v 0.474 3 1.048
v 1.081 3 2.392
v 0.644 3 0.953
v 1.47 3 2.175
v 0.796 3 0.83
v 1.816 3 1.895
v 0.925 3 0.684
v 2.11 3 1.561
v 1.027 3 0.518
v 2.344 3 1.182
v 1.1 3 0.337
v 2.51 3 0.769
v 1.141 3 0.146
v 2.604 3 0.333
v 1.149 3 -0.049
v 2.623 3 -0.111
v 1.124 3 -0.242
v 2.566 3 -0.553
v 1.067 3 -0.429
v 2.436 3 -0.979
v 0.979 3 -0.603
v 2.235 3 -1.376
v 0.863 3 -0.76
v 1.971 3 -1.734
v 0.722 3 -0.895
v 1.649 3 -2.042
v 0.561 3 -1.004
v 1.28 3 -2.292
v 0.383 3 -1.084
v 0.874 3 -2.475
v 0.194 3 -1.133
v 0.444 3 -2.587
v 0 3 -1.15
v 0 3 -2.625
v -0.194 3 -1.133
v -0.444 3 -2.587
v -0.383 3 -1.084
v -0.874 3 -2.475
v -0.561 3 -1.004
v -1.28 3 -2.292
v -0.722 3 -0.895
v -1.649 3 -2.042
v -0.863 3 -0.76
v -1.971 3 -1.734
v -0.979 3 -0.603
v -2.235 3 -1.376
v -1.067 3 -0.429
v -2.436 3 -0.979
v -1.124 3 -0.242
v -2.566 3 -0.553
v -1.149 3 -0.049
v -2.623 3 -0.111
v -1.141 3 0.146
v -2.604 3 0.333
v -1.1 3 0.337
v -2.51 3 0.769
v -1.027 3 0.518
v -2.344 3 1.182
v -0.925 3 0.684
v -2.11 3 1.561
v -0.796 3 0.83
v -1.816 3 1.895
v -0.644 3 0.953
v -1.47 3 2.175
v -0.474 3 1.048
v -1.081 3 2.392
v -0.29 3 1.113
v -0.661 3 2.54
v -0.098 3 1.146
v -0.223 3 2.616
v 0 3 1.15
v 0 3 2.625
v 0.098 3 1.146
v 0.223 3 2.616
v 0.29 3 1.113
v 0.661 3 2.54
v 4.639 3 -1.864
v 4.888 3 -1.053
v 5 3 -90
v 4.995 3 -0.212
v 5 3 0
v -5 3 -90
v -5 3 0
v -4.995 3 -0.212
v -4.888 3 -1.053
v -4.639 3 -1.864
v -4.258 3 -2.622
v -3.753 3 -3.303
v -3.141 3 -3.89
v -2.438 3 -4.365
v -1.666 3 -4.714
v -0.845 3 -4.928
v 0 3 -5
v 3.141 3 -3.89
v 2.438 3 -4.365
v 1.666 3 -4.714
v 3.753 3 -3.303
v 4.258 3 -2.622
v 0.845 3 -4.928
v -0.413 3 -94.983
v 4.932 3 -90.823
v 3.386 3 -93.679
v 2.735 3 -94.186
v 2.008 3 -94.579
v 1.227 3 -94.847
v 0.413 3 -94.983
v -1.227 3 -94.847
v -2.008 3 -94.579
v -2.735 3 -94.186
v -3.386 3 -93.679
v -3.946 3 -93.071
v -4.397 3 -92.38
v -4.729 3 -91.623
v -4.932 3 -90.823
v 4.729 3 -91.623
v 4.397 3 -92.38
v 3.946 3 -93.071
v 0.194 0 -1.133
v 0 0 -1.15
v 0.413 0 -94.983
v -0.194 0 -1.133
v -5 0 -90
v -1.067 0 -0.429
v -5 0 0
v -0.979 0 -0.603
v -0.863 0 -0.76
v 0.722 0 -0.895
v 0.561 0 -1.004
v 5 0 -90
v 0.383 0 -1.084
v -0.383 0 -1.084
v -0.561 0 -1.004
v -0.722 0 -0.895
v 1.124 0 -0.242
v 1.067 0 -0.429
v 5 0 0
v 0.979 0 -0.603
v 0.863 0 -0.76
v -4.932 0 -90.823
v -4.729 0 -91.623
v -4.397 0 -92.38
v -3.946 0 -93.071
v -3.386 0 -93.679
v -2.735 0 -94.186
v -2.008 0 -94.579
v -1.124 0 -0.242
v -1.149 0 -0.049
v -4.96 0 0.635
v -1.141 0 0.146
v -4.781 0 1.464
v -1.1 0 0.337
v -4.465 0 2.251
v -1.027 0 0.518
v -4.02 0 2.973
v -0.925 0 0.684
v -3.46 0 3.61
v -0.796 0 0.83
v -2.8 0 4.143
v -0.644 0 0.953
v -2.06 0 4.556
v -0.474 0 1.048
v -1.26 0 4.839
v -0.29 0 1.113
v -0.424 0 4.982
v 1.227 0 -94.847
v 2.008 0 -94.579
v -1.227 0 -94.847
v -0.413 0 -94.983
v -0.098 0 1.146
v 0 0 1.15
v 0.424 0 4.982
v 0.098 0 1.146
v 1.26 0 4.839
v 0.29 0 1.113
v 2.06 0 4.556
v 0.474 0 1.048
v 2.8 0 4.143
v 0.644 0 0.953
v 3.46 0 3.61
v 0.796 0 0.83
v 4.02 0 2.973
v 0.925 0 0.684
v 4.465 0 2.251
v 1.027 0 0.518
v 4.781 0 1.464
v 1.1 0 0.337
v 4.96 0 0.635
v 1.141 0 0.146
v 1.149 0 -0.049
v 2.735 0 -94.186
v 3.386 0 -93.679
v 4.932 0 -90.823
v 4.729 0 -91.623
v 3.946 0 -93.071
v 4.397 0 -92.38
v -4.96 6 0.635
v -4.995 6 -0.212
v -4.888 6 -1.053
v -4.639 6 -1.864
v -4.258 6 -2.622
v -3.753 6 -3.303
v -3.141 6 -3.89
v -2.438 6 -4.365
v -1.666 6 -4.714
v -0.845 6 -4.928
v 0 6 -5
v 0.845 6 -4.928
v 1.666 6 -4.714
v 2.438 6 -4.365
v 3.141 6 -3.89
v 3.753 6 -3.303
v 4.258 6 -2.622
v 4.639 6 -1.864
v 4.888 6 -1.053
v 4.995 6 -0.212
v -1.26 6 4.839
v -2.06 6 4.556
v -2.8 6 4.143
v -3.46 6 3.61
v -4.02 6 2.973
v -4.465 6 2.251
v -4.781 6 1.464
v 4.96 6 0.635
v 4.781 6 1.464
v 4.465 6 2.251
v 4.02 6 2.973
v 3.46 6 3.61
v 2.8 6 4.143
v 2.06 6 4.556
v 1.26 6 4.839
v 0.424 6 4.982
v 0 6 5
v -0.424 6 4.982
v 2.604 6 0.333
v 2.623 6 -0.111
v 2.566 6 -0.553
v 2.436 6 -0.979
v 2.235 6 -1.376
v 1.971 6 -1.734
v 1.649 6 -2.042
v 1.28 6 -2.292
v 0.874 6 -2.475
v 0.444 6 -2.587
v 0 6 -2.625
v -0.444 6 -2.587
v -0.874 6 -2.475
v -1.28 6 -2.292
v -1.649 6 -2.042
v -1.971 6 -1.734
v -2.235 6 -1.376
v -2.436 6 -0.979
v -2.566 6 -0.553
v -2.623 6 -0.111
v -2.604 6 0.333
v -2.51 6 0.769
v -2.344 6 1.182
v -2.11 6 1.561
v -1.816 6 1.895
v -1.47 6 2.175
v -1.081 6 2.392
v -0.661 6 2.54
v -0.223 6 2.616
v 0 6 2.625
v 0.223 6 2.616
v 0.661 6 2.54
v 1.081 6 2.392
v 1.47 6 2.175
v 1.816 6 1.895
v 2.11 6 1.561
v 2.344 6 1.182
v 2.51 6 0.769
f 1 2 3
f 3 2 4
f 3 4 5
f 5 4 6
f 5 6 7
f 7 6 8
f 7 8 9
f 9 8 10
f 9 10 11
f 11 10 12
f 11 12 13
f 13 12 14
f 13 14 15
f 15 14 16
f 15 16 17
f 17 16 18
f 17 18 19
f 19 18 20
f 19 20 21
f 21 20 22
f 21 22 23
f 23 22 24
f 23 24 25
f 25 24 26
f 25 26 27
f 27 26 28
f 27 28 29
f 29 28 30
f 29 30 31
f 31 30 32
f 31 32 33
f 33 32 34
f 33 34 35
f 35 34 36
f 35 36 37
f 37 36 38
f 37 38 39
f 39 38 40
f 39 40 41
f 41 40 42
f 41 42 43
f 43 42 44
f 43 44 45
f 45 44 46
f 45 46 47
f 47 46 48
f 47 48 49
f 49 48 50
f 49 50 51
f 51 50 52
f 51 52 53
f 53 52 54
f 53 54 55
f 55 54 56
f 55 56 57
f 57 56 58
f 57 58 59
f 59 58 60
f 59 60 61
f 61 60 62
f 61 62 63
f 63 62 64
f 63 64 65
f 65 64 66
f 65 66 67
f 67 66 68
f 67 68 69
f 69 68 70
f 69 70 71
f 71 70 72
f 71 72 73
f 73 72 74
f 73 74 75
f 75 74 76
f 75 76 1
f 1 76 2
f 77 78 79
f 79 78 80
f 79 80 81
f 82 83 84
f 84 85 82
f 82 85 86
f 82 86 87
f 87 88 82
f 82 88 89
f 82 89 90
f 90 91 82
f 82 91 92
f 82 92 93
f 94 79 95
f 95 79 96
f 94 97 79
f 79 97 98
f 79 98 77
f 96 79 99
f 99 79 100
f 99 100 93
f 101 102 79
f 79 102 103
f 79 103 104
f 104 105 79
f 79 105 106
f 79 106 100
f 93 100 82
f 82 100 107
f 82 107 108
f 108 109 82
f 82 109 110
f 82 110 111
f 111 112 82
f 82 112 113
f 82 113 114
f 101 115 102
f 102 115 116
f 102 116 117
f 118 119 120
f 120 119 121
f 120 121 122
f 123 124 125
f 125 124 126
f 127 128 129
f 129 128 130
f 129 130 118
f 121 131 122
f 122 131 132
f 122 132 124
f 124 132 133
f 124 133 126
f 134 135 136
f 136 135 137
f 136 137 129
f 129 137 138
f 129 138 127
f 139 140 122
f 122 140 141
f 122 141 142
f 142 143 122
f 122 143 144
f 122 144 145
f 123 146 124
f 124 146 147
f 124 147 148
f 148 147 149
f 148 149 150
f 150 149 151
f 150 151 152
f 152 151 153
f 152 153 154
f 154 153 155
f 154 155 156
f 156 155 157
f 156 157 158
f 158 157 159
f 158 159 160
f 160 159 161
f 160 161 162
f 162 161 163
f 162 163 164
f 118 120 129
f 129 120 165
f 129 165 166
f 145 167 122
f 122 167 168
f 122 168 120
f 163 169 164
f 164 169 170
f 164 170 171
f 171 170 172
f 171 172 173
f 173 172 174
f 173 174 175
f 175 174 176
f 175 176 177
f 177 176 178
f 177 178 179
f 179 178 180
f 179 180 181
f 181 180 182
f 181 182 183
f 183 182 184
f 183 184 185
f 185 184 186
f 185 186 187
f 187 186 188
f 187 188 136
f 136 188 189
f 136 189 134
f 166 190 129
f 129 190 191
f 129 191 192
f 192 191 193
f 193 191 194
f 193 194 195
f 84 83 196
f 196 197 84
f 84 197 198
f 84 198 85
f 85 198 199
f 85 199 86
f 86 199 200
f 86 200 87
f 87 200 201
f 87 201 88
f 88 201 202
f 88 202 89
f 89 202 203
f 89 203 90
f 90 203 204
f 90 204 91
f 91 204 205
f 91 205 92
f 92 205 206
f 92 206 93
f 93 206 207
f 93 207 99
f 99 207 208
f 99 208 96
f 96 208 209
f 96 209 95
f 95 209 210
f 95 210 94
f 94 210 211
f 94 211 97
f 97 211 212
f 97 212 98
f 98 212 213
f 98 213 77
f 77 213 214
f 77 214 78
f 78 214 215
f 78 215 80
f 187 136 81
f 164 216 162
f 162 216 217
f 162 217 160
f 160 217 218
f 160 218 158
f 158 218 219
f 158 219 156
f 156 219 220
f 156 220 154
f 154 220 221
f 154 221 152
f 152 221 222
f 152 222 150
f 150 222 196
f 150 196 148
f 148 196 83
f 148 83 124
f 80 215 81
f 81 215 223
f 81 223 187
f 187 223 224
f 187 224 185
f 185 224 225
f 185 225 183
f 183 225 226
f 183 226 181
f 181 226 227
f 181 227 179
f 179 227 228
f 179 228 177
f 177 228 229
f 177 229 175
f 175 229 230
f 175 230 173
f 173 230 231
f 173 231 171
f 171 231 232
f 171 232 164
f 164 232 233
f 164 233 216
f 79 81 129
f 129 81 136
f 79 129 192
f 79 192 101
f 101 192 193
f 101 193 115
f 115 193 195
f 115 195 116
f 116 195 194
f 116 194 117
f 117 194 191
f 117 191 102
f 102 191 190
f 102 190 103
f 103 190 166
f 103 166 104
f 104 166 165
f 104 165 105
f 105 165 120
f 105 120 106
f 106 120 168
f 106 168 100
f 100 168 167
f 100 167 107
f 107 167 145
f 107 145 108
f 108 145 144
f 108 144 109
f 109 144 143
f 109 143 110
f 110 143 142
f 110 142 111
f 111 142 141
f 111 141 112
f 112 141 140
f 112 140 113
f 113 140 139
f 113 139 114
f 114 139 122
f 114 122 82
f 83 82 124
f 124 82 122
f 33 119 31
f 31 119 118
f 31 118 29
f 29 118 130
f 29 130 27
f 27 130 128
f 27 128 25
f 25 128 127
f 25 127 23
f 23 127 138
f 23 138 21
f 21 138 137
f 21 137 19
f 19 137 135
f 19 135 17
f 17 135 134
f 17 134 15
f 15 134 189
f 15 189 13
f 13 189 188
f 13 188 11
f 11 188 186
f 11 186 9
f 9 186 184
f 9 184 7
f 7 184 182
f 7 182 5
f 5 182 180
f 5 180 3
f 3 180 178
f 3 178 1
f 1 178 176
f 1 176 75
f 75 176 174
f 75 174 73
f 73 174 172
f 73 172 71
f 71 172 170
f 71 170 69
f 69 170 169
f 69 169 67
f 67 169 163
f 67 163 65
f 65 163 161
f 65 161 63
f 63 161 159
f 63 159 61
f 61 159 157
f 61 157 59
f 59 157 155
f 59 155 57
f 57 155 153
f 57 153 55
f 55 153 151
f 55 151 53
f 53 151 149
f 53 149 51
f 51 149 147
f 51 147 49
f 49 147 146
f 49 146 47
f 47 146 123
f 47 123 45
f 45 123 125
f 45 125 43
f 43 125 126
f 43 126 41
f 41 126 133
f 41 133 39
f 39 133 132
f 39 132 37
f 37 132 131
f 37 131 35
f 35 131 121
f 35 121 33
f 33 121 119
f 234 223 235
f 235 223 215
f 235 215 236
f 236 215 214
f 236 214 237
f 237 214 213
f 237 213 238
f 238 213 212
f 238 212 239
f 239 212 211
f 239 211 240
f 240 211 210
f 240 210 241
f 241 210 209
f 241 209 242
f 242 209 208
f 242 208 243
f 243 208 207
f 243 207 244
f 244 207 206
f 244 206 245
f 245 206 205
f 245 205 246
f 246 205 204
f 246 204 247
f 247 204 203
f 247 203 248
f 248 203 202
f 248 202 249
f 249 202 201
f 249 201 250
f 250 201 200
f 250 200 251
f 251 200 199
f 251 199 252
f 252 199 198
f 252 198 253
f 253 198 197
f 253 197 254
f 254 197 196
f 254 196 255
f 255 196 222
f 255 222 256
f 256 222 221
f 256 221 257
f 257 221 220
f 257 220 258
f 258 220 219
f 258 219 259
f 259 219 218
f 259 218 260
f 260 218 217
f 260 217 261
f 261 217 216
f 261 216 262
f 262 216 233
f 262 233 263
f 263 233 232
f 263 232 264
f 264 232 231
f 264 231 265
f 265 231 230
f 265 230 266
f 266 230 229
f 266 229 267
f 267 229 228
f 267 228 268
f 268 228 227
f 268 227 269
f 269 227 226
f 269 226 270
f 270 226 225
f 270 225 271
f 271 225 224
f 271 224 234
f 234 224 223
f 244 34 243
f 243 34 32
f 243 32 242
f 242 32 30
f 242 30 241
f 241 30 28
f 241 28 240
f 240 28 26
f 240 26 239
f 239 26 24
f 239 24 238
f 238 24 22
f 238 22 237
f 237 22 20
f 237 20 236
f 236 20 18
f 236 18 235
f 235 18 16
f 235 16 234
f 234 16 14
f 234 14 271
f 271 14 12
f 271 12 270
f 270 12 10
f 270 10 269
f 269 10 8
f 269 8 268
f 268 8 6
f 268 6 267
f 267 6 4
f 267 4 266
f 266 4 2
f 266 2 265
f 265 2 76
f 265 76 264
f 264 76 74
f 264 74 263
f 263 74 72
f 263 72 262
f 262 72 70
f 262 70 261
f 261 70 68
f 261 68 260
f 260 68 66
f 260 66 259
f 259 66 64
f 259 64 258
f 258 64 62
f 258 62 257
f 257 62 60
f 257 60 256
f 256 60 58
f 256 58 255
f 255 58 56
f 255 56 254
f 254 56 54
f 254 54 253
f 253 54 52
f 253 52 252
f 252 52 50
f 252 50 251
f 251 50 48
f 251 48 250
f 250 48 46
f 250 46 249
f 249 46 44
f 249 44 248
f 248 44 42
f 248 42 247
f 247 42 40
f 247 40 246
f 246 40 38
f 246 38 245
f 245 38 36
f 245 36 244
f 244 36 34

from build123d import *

# Parameters (mm, degrees)
CROQUIS1_R              = 1.15
SALIENTE_EXTRUIR1_DEPTH = 3
CROQUIS2_R              = 5
CROQUIS2_R_2            = 2.625
SALIENTE_EXTRUIR2_DEPTH = 3


with BuildPart() as part:
    # Croquis1 → Saliente-Extruir1 (new body)
    with BuildSketch(Plane(origin=(0, 0, 0), x_dir=(1, 0, 0), z_dir=(0, 1, 0))):
        with BuildLine():
            Line((-5, 0), (-5, 90))
            ThreePointArc((-5, 90), (0, 95), (5, 90))
            Line((5, 90), (5, 0))
            ThreePointArc((5, 0), (0, -5), (-5, 0))
        make_face()
        with Locations(Location((0, 0, 0), (0, 0, 270))):
            Circle(CROQUIS1_R, mode=Mode.SUBTRACT)
    extrude(amount=SALIENTE_EXTRUIR1_DEPTH)

    # Croquis2 → Saliente-Extruir2 (add)
    with BuildSketch(Plane(origin=(0, 3, 0), x_dir=(1, 0, 0), z_dir=(0, 1, 0))):
        Circle(CROQUIS2_R)
        with Locations(Location((0, 0, 0), (0, 0, 270))):
            Circle(CROQUIS2_R_2, mode=Mode.SUBTRACT)
    extrude(amount=SALIENTE_EXTRUIR2_DEPTH)


solid = part.part
